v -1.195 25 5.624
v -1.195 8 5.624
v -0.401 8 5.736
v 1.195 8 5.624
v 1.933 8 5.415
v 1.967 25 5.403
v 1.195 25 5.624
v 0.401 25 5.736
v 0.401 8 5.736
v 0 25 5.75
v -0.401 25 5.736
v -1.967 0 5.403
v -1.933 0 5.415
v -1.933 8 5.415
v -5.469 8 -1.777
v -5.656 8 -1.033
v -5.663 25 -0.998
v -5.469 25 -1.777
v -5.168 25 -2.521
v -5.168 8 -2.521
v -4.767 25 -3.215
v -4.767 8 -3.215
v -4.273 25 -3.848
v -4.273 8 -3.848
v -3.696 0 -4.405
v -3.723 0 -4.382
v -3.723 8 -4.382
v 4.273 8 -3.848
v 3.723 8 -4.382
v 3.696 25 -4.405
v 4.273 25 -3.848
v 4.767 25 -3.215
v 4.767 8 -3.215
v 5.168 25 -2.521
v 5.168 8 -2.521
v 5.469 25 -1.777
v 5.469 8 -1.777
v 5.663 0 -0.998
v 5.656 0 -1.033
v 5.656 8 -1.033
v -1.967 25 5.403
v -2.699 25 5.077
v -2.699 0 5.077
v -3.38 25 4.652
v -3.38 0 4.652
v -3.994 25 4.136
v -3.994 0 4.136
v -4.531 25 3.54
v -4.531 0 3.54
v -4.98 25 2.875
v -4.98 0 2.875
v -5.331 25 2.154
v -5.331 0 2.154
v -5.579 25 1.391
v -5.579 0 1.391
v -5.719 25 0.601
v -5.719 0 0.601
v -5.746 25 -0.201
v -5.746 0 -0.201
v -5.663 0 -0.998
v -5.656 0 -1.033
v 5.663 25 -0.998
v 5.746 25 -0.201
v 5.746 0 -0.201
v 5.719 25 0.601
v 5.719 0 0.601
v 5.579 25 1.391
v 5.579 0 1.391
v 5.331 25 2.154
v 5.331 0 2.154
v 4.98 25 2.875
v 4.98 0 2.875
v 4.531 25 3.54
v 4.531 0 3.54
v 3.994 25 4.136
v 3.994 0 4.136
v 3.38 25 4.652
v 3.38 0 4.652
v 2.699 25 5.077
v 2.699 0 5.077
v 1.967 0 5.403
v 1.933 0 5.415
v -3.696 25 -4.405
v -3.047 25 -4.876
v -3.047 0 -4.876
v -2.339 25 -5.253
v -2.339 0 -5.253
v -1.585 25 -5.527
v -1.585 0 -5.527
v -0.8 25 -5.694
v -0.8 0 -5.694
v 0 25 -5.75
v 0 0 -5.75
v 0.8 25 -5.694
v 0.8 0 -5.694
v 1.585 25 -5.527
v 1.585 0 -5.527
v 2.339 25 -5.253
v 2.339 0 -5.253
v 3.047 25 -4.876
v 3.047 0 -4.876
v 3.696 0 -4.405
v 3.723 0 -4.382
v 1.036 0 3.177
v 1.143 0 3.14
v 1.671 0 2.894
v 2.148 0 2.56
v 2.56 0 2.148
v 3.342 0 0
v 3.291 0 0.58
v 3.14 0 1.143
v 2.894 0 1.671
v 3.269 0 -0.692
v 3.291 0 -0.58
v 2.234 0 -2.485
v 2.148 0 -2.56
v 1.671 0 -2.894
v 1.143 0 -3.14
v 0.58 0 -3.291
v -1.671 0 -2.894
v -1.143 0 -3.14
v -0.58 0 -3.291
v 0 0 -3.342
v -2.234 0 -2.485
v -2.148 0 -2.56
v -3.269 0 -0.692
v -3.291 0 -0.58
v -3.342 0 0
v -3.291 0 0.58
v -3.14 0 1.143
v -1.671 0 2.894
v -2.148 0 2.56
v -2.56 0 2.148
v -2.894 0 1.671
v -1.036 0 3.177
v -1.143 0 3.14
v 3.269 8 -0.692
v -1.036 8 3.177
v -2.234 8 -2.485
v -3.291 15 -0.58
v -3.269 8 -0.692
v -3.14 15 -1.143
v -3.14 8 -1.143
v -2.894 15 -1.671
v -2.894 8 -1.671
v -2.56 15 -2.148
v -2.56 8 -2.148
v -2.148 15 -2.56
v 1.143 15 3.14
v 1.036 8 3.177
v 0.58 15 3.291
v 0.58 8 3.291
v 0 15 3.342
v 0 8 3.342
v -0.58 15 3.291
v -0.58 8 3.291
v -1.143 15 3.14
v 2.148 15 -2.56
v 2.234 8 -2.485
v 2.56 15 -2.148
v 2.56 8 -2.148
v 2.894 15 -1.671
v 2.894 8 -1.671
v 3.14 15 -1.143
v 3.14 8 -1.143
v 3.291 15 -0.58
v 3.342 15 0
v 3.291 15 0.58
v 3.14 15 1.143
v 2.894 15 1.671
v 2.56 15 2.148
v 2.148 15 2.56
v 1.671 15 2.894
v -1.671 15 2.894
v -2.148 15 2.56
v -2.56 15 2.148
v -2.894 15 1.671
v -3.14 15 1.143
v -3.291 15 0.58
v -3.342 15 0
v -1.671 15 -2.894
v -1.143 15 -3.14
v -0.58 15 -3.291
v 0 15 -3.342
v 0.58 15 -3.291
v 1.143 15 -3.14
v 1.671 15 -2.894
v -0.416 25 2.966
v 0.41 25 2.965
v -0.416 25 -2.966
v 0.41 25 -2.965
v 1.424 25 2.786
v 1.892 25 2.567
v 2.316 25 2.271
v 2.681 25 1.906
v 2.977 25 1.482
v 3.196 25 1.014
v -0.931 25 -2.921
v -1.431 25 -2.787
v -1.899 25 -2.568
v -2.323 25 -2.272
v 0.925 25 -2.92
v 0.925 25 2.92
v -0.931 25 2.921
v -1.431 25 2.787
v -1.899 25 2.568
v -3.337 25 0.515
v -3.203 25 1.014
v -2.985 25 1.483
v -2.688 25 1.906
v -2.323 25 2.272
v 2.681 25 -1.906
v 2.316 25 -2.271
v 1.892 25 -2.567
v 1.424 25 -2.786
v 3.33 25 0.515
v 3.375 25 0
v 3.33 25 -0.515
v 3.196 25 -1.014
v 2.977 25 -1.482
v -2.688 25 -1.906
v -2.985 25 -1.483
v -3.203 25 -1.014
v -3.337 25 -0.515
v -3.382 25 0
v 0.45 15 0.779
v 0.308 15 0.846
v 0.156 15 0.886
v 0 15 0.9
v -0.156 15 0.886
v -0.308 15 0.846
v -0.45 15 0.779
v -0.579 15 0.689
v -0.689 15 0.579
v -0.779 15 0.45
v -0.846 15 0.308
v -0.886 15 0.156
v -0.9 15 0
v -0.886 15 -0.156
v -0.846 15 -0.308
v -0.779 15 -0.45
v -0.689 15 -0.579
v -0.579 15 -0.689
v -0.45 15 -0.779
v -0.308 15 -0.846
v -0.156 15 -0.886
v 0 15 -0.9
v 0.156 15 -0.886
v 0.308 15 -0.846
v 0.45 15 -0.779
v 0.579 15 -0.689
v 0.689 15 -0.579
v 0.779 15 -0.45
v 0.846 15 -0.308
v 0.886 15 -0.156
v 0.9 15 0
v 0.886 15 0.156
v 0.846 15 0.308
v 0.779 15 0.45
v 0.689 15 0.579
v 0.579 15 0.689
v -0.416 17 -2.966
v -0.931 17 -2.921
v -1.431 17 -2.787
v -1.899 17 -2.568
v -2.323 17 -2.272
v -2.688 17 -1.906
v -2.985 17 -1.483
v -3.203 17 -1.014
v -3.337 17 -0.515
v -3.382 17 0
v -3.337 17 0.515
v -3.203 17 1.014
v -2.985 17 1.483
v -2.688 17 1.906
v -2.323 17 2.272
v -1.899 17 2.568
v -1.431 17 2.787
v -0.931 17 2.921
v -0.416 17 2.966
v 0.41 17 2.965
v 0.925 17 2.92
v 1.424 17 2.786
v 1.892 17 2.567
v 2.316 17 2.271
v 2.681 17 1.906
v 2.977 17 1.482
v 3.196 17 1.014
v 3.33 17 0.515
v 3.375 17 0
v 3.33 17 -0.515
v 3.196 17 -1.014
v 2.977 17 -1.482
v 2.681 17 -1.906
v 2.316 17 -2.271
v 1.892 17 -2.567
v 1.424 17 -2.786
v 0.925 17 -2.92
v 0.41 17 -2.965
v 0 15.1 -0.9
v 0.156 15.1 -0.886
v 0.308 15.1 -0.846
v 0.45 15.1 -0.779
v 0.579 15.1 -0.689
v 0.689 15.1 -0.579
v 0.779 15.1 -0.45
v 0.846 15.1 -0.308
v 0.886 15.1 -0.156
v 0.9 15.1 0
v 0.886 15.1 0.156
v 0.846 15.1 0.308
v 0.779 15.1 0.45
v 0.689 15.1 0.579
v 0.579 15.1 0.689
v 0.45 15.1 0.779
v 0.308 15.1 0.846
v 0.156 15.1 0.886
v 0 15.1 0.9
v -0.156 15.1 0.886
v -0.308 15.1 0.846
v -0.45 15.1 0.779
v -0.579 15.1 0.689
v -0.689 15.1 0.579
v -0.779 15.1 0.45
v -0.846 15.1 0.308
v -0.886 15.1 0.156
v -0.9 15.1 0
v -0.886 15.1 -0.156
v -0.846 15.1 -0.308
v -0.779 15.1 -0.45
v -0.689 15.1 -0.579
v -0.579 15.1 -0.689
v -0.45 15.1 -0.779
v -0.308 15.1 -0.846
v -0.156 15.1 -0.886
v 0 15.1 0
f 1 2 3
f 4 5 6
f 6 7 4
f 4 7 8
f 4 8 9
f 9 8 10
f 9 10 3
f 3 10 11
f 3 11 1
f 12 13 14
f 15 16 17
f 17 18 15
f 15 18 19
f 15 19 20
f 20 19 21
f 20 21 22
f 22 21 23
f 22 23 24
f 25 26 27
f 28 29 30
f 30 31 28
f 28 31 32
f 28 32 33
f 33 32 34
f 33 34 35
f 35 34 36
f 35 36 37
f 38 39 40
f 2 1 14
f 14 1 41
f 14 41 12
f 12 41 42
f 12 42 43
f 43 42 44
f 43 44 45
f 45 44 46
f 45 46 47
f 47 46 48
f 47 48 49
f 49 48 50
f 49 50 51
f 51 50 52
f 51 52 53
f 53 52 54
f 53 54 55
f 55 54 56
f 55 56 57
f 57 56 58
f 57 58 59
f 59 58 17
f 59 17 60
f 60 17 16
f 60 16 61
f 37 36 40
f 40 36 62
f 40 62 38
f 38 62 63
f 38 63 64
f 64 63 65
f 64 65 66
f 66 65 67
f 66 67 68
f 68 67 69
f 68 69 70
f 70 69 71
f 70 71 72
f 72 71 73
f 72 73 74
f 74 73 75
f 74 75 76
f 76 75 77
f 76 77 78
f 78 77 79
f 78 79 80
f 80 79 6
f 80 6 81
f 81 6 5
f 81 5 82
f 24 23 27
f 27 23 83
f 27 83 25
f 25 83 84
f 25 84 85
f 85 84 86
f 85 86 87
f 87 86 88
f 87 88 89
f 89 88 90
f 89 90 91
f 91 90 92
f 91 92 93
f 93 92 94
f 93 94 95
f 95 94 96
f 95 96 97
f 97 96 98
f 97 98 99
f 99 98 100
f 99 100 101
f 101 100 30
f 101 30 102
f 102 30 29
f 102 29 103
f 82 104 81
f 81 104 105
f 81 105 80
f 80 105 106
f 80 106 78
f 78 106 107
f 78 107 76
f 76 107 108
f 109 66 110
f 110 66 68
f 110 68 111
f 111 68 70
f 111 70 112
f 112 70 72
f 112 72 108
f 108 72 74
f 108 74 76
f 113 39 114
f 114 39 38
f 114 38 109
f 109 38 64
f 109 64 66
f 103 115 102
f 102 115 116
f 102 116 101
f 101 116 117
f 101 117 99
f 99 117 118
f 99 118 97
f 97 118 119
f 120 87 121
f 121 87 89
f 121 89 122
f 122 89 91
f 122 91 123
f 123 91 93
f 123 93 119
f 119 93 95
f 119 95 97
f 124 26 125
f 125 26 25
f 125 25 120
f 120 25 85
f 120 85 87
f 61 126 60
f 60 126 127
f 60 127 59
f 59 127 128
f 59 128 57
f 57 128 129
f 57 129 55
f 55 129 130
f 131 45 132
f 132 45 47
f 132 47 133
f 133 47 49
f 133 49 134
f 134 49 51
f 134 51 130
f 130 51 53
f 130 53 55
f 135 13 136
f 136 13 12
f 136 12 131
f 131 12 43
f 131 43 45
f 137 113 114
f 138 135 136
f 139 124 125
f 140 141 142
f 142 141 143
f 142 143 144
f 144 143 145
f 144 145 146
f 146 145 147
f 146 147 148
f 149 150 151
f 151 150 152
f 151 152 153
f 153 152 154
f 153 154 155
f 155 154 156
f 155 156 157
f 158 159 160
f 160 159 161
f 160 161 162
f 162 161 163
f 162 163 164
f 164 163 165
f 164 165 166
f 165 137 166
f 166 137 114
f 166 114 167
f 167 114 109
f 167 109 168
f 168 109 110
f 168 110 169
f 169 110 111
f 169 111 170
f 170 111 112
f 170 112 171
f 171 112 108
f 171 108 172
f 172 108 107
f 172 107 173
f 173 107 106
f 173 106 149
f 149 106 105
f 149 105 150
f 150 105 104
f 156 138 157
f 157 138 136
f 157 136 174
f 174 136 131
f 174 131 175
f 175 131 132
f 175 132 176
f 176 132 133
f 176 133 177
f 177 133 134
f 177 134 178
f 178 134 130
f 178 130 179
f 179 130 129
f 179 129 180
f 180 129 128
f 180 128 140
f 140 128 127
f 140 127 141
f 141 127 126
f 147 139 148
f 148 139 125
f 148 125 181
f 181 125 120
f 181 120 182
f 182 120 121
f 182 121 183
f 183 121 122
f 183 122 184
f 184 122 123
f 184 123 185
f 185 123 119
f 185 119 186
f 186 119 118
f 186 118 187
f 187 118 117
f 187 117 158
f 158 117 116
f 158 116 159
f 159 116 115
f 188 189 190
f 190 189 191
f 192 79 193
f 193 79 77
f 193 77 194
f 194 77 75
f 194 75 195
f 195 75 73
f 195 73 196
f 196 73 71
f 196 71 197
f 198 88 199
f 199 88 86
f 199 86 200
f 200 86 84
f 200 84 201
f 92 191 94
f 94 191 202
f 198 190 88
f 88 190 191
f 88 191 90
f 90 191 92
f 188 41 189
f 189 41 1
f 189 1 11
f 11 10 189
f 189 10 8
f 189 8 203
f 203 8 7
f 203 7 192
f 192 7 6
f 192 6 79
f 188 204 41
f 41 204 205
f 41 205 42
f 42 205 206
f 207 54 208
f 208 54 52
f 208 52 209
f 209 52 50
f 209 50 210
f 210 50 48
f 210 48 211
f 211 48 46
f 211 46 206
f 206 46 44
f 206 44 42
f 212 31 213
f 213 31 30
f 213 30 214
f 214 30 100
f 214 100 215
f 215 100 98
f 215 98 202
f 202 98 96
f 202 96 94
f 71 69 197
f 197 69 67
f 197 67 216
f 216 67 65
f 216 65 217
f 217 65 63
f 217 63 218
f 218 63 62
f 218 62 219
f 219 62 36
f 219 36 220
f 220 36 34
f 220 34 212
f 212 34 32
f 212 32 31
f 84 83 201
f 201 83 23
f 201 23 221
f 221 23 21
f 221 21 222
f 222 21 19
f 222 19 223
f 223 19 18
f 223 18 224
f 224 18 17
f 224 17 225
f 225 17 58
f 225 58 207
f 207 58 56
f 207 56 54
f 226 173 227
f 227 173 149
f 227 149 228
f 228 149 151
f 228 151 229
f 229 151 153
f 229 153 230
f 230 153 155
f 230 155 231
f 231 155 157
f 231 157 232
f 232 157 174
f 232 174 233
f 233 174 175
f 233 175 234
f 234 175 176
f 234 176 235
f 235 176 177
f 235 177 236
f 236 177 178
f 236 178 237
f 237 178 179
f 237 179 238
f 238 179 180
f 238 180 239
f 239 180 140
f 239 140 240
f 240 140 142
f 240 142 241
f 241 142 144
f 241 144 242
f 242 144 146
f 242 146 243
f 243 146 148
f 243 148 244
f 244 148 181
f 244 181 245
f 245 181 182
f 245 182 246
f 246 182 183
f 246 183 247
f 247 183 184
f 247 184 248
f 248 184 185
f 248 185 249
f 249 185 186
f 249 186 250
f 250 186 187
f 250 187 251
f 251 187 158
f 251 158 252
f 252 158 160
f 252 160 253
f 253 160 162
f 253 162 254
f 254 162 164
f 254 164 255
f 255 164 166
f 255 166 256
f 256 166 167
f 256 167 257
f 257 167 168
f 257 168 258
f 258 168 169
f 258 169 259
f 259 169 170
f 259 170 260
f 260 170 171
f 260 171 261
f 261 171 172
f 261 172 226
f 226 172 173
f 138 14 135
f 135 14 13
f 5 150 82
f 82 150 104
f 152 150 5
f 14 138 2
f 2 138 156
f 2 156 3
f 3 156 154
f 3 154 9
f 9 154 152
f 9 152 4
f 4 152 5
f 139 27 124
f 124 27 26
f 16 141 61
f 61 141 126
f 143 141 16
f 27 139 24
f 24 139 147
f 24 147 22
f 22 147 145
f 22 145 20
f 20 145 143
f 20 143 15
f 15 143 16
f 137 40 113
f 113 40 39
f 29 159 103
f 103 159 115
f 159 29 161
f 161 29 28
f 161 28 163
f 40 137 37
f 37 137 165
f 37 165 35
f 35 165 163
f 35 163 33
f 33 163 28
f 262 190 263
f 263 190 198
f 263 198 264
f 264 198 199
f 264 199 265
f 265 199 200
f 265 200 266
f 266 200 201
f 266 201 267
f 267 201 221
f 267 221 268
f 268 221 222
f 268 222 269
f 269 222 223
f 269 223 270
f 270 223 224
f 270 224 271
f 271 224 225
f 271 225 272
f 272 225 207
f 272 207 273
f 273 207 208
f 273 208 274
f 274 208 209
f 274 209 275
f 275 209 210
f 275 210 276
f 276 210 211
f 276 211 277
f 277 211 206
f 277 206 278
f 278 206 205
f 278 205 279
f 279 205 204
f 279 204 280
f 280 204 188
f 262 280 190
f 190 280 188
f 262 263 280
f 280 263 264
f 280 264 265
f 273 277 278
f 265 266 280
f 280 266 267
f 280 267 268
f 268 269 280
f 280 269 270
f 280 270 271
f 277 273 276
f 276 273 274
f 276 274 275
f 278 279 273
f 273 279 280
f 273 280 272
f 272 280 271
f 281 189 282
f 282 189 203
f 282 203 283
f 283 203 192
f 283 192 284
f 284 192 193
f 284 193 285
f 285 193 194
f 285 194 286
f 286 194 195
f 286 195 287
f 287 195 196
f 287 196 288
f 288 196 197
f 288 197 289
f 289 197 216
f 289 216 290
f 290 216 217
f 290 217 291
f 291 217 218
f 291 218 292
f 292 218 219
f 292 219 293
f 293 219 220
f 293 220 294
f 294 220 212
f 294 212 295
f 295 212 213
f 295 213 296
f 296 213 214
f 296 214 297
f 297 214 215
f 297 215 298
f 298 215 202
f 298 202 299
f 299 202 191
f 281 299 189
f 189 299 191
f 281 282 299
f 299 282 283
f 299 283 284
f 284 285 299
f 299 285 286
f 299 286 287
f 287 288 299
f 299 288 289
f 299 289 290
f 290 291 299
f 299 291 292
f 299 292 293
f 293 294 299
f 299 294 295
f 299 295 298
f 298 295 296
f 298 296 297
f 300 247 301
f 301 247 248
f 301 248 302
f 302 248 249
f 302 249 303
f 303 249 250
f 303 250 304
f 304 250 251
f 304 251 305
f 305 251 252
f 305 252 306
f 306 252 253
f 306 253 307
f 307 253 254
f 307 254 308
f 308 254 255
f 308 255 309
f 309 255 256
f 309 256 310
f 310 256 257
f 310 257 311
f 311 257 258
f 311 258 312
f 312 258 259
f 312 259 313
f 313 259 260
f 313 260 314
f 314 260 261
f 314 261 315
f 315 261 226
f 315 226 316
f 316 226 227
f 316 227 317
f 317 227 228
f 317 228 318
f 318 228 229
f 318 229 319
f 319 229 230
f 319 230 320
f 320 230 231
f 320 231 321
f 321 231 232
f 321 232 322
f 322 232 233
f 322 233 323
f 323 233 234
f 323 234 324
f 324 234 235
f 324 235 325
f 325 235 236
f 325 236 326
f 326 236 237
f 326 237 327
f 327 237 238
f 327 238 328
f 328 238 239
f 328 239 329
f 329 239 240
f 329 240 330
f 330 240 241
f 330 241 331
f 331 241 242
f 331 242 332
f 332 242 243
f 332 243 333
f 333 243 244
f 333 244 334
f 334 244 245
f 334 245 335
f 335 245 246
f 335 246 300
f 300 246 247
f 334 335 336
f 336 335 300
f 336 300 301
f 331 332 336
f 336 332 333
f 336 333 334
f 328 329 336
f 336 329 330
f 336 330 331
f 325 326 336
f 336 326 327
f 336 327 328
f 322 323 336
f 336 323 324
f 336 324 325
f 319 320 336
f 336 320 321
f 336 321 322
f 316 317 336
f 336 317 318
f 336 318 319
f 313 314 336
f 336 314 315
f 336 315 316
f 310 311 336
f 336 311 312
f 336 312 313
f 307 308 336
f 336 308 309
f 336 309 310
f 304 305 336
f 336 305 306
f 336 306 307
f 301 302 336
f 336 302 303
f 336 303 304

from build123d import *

# Parameters (mm, degrees)
SKETCH1_R           = 5.75
BOSS_EXTRUDE1_DEPTH = 25
SKETCH2_R           = 3.341548393
CUT_EXTRUDE1_DEPTH  = 15
CUT_EXTRUDE2_DEPTH  = 8
CIRPATTERN1_COUNT   = 3
CUT_EXTRUDE3_DEPTH  = 8
SKETCH7_R           = 0.9
CUT_EXTRUDE4_DEPTH  = 0.1


with BuildPart() as part:
    # Sketch1 → Boss-Extrude1 (new body)
    with BuildSketch(Plane(origin=(0, 0, 0), x_dir=(1, 0, 0), z_dir=(0, 1, 0))):
        with Locations(Location((0, 0, 0), (0, 0, 270))):
            Circle(SKETCH1_R)
    extrude(amount=BOSS_EXTRUDE1_DEPTH)

    # Sketch2 → Cut-Extrude1 (cut)
    with BuildSketch(Plane(origin=(0, 0, 0), x_dir=(1, 0, 0), z_dir=(0, 1, 0))):
        with Locations(Location((0, 0, 0), (0, 0, 270))):
            Circle(SKETCH2_R)
    extrude(amount=CUT_EXTRUDE1_DEPTH, mode=Mode.SUBTRACT)

    # Sketch5 → Cut-Extrude2 (cut)
    with BuildSketch(Plane(origin=(0, 0, 0), x_dir=(1, 0, 0), z_dir=(0, 1, 0))):
        with BuildLine():
            Line((-1.035655919, -3.177005269), (-1.933412335, -5.415202373))
            ThreePointArc((-1.933412335, -5.415202373), (0, -5.75), (1.933412335, -5.415202373))
            Line((1.933412335, -5.415202373), (1.035655919, -3.177005269))
            ThreePointArc((1.035655919, -3.177005269), (0, -3.341548393), (-1.035655919, -3.177005269))
        make_face()
    cut_extrude2 = extrude(amount=CUT_EXTRUDE2_DEPTH, mode=Mode.SUBTRACT)

    # CirPattern1: Cut-Extrude2 ×3 about axis
    cirpattern1_axis = Axis((0, 0, 0), (0, 1, 0))
    for i in range(1, CIRPATTERN1_COUNT):
        add(cut_extrude2.rotate(cirpattern1_axis, i * 360 / CIRPATTERN1_COUNT), mode=Mode.SUBTRACT)

    # Sketch6 → Cut-Extrude3 (cut)
    with BuildSketch(Plane(origin=(0, 25, 0), x_dir=(1, 0, 0), z_dir=(0, 1, 0))):
        with BuildLine():
            Line((0.41, 2.964671599), (0.41, -2.964671599))
            ThreePointArc((0.41, -2.964671599), (3.374671599, 0), (0.41, 2.964671599))
        make_face()
        with BuildLine():
            Line((-0.416408681, 2.965564682), (-0.416408681, -2.965564682))
            ThreePointArc((-0.416408681, -2.965564682), (-3.381973363, 0), (-0.416408681, 2.965564682))
        make_face()
    extrude(amount=-CUT_EXTRUDE3_DEPTH, mode=Mode.SUBTRACT)

    # Sketch7 → Cut-Extrude4 (cut)
    with BuildSketch(Plane.XZ.offset(-15)):
        with Locations(Location((0, 0, 0), (0, 0, 270))):
            Circle(SKETCH7_R)
    extrude(amount=-CUT_EXTRUDE4_DEPTH, mode=Mode.SUBTRACT)


solid = part.part
